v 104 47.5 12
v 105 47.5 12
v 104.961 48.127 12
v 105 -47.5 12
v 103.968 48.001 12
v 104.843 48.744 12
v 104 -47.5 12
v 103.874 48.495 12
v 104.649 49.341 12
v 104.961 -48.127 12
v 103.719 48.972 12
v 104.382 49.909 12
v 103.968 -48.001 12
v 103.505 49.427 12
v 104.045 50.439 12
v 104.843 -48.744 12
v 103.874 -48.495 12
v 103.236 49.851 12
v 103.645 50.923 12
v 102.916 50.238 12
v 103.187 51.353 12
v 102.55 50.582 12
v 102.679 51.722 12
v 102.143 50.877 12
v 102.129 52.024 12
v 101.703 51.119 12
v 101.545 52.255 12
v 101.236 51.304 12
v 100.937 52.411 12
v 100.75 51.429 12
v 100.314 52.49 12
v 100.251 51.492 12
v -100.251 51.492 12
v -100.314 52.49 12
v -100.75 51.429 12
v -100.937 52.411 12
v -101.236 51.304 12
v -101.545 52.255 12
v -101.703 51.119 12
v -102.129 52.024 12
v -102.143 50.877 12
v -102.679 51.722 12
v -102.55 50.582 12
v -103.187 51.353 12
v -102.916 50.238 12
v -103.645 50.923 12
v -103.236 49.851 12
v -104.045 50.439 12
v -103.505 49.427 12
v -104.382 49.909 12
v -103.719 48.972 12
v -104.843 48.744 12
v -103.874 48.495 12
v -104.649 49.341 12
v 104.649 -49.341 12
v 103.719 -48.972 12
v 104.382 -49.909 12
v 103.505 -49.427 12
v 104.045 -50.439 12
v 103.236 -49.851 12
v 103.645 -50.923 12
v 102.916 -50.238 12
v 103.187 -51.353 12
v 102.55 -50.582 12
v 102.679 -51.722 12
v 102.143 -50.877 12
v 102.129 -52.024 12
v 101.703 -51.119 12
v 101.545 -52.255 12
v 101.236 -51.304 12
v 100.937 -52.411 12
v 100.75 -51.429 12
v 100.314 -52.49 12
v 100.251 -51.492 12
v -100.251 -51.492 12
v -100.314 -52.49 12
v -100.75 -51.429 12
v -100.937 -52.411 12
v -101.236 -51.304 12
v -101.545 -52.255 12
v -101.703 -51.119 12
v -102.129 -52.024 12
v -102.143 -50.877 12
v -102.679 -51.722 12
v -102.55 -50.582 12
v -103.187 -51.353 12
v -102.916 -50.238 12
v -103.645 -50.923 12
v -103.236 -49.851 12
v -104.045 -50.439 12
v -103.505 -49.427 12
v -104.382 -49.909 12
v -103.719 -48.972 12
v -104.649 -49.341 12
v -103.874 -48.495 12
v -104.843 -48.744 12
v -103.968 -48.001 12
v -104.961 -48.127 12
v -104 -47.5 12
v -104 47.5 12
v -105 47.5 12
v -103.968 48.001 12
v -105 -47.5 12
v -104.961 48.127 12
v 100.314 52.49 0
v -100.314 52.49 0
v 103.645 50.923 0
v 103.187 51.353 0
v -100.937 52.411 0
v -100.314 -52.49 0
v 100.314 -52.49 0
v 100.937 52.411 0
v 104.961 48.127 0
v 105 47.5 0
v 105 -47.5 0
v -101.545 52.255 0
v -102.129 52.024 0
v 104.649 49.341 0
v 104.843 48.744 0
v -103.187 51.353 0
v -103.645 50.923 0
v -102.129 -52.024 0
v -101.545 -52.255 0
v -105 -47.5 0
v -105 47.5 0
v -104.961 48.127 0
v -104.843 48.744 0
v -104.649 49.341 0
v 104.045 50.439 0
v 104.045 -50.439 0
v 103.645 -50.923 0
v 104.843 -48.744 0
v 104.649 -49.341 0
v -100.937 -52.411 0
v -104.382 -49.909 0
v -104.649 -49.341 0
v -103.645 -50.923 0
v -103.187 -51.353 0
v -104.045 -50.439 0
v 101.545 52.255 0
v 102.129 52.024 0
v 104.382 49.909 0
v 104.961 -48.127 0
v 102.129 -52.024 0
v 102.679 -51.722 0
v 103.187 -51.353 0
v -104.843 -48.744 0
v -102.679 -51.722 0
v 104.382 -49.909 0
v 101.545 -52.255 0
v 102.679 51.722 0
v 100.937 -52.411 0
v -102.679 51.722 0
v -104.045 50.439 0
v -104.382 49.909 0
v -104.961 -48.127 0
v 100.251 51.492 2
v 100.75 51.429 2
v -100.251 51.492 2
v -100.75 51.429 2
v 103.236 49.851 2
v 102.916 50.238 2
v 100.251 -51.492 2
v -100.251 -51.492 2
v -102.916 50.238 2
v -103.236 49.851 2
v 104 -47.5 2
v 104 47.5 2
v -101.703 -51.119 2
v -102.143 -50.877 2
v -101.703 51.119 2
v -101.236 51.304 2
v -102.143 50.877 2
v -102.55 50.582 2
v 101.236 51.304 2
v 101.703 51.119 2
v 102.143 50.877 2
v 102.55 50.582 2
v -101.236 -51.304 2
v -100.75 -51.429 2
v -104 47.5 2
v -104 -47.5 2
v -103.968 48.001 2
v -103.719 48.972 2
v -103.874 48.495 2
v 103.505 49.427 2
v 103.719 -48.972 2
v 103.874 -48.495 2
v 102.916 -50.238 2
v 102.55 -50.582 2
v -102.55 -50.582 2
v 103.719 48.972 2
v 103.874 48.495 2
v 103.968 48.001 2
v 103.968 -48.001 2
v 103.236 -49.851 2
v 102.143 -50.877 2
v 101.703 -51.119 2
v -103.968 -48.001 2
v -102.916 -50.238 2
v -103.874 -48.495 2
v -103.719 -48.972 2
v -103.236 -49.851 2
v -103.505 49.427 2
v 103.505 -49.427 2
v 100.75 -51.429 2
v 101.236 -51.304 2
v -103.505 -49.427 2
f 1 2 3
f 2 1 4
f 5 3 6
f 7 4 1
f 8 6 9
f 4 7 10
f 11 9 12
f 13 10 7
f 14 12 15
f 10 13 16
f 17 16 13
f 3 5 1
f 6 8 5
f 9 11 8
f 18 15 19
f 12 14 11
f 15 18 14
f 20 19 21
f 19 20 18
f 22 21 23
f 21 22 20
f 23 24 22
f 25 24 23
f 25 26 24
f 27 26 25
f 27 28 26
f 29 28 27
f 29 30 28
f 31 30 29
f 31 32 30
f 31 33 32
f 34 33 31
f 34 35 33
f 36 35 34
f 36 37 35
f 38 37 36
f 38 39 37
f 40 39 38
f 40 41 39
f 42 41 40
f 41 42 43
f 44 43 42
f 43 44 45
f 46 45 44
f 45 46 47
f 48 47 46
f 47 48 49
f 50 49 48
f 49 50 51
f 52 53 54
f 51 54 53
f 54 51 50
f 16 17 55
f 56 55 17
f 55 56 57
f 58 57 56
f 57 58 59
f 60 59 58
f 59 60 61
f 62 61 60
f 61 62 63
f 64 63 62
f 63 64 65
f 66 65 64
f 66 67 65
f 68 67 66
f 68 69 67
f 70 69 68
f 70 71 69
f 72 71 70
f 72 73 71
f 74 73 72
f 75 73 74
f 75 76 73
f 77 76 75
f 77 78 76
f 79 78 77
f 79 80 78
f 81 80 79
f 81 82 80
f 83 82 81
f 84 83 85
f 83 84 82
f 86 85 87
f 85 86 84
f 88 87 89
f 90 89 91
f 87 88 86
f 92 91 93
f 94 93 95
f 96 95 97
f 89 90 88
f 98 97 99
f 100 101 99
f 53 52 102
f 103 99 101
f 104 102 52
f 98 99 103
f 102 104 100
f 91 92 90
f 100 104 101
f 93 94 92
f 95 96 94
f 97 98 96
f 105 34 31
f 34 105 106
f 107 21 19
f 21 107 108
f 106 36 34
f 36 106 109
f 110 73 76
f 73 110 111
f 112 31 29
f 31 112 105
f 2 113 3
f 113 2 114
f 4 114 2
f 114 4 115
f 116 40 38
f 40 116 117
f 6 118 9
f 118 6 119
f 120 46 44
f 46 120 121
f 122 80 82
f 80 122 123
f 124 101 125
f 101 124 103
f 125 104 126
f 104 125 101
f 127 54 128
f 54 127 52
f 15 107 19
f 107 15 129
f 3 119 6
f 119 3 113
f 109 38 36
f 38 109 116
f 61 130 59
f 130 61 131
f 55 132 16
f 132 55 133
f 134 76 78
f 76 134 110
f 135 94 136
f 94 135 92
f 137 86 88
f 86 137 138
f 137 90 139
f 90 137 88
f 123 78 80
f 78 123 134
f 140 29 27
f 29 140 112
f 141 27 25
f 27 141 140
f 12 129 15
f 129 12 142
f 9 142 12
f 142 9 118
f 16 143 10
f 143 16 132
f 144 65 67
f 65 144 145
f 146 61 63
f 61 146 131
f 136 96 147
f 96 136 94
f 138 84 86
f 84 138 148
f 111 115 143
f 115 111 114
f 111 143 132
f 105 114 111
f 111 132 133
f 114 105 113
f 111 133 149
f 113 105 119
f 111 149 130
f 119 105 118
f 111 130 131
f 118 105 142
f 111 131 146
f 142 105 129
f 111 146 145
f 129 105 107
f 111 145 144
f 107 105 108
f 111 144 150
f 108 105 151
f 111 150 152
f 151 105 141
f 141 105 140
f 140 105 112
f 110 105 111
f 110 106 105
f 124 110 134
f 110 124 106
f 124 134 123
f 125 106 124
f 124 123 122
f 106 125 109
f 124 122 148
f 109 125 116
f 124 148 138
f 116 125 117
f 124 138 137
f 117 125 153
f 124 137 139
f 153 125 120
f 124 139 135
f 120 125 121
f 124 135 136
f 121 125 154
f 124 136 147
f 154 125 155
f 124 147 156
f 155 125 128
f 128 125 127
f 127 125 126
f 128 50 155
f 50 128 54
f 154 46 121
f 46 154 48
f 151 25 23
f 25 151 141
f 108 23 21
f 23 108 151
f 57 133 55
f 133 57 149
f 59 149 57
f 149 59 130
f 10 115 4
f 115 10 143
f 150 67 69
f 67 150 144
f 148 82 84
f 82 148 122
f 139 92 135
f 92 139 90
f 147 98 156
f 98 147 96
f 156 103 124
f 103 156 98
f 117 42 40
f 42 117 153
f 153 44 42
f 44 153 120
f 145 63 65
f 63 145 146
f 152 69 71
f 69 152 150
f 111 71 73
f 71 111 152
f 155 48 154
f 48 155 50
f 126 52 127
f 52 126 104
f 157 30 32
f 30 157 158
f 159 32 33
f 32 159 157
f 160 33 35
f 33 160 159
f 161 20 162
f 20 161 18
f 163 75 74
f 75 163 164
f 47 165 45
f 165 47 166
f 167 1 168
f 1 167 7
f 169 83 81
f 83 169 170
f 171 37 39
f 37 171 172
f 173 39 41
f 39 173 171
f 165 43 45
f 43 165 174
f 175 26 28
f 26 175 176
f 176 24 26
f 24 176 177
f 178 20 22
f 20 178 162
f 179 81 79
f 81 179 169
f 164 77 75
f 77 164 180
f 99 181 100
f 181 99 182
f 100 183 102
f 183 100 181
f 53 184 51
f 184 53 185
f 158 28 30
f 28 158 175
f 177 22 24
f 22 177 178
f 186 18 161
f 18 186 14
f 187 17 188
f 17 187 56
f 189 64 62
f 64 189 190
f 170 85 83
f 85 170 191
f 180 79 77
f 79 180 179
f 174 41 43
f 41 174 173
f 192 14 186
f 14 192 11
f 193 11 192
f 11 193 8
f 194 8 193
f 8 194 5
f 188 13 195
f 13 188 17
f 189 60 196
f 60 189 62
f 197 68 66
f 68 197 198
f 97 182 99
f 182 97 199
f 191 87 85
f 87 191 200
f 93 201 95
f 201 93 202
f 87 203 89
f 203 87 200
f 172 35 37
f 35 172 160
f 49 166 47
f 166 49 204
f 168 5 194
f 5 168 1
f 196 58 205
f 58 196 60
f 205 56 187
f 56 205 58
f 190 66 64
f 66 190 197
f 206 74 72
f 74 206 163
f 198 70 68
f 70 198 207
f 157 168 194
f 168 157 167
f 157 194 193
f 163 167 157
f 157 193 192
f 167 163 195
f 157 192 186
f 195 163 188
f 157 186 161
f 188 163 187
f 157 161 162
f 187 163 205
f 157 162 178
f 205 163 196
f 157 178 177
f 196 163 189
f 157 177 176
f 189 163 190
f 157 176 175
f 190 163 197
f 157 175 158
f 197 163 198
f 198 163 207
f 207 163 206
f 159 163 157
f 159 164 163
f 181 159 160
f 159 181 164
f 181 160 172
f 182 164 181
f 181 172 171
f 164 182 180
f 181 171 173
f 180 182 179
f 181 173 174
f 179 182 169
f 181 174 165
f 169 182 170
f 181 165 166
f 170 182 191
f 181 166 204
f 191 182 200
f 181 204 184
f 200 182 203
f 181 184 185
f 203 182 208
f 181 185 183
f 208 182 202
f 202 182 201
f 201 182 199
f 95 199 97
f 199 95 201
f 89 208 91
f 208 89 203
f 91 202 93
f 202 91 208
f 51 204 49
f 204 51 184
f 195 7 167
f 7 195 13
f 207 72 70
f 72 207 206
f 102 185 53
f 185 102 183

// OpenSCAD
$fn = 50;


difference() {
	union() {
		hull() {
			translate(v = [-100.0000000000, 47.5000000000, 0]) {
				cylinder(h = 12, r = 5);
			}
			translate(v = [100.0000000000, 47.5000000000, 0]) {
				cylinder(h = 12, r = 5);
			}
			translate(v = [-100.0000000000, -47.5000000000, 0]) {
				cylinder(h = 12, r = 5);
			}
			translate(v = [100.0000000000, -47.5000000000, 0]) {
				cylinder(h = 12, r = 5);
			}
		}
	}
	union() {
		translate(v = [0, 0, 2]) {
			hull() {
				translate(v = [-100.0000000000, 47.5000000000, 0]) {
					cylinder(h = 10, r = 4);
				}
				translate(v = [100.0000000000, 47.5000000000, 0]) {
					cylinder(h = 10, r = 4);
				}
				translate(v = [-100.0000000000, -47.5000000000, 0]) {
					cylinder(h = 10, r = 4);
				}
				translate(v = [100.0000000000, -47.5000000000, 0]) {
					cylinder(h = 10, r = 4);
				}
			}
		}
	}
}
